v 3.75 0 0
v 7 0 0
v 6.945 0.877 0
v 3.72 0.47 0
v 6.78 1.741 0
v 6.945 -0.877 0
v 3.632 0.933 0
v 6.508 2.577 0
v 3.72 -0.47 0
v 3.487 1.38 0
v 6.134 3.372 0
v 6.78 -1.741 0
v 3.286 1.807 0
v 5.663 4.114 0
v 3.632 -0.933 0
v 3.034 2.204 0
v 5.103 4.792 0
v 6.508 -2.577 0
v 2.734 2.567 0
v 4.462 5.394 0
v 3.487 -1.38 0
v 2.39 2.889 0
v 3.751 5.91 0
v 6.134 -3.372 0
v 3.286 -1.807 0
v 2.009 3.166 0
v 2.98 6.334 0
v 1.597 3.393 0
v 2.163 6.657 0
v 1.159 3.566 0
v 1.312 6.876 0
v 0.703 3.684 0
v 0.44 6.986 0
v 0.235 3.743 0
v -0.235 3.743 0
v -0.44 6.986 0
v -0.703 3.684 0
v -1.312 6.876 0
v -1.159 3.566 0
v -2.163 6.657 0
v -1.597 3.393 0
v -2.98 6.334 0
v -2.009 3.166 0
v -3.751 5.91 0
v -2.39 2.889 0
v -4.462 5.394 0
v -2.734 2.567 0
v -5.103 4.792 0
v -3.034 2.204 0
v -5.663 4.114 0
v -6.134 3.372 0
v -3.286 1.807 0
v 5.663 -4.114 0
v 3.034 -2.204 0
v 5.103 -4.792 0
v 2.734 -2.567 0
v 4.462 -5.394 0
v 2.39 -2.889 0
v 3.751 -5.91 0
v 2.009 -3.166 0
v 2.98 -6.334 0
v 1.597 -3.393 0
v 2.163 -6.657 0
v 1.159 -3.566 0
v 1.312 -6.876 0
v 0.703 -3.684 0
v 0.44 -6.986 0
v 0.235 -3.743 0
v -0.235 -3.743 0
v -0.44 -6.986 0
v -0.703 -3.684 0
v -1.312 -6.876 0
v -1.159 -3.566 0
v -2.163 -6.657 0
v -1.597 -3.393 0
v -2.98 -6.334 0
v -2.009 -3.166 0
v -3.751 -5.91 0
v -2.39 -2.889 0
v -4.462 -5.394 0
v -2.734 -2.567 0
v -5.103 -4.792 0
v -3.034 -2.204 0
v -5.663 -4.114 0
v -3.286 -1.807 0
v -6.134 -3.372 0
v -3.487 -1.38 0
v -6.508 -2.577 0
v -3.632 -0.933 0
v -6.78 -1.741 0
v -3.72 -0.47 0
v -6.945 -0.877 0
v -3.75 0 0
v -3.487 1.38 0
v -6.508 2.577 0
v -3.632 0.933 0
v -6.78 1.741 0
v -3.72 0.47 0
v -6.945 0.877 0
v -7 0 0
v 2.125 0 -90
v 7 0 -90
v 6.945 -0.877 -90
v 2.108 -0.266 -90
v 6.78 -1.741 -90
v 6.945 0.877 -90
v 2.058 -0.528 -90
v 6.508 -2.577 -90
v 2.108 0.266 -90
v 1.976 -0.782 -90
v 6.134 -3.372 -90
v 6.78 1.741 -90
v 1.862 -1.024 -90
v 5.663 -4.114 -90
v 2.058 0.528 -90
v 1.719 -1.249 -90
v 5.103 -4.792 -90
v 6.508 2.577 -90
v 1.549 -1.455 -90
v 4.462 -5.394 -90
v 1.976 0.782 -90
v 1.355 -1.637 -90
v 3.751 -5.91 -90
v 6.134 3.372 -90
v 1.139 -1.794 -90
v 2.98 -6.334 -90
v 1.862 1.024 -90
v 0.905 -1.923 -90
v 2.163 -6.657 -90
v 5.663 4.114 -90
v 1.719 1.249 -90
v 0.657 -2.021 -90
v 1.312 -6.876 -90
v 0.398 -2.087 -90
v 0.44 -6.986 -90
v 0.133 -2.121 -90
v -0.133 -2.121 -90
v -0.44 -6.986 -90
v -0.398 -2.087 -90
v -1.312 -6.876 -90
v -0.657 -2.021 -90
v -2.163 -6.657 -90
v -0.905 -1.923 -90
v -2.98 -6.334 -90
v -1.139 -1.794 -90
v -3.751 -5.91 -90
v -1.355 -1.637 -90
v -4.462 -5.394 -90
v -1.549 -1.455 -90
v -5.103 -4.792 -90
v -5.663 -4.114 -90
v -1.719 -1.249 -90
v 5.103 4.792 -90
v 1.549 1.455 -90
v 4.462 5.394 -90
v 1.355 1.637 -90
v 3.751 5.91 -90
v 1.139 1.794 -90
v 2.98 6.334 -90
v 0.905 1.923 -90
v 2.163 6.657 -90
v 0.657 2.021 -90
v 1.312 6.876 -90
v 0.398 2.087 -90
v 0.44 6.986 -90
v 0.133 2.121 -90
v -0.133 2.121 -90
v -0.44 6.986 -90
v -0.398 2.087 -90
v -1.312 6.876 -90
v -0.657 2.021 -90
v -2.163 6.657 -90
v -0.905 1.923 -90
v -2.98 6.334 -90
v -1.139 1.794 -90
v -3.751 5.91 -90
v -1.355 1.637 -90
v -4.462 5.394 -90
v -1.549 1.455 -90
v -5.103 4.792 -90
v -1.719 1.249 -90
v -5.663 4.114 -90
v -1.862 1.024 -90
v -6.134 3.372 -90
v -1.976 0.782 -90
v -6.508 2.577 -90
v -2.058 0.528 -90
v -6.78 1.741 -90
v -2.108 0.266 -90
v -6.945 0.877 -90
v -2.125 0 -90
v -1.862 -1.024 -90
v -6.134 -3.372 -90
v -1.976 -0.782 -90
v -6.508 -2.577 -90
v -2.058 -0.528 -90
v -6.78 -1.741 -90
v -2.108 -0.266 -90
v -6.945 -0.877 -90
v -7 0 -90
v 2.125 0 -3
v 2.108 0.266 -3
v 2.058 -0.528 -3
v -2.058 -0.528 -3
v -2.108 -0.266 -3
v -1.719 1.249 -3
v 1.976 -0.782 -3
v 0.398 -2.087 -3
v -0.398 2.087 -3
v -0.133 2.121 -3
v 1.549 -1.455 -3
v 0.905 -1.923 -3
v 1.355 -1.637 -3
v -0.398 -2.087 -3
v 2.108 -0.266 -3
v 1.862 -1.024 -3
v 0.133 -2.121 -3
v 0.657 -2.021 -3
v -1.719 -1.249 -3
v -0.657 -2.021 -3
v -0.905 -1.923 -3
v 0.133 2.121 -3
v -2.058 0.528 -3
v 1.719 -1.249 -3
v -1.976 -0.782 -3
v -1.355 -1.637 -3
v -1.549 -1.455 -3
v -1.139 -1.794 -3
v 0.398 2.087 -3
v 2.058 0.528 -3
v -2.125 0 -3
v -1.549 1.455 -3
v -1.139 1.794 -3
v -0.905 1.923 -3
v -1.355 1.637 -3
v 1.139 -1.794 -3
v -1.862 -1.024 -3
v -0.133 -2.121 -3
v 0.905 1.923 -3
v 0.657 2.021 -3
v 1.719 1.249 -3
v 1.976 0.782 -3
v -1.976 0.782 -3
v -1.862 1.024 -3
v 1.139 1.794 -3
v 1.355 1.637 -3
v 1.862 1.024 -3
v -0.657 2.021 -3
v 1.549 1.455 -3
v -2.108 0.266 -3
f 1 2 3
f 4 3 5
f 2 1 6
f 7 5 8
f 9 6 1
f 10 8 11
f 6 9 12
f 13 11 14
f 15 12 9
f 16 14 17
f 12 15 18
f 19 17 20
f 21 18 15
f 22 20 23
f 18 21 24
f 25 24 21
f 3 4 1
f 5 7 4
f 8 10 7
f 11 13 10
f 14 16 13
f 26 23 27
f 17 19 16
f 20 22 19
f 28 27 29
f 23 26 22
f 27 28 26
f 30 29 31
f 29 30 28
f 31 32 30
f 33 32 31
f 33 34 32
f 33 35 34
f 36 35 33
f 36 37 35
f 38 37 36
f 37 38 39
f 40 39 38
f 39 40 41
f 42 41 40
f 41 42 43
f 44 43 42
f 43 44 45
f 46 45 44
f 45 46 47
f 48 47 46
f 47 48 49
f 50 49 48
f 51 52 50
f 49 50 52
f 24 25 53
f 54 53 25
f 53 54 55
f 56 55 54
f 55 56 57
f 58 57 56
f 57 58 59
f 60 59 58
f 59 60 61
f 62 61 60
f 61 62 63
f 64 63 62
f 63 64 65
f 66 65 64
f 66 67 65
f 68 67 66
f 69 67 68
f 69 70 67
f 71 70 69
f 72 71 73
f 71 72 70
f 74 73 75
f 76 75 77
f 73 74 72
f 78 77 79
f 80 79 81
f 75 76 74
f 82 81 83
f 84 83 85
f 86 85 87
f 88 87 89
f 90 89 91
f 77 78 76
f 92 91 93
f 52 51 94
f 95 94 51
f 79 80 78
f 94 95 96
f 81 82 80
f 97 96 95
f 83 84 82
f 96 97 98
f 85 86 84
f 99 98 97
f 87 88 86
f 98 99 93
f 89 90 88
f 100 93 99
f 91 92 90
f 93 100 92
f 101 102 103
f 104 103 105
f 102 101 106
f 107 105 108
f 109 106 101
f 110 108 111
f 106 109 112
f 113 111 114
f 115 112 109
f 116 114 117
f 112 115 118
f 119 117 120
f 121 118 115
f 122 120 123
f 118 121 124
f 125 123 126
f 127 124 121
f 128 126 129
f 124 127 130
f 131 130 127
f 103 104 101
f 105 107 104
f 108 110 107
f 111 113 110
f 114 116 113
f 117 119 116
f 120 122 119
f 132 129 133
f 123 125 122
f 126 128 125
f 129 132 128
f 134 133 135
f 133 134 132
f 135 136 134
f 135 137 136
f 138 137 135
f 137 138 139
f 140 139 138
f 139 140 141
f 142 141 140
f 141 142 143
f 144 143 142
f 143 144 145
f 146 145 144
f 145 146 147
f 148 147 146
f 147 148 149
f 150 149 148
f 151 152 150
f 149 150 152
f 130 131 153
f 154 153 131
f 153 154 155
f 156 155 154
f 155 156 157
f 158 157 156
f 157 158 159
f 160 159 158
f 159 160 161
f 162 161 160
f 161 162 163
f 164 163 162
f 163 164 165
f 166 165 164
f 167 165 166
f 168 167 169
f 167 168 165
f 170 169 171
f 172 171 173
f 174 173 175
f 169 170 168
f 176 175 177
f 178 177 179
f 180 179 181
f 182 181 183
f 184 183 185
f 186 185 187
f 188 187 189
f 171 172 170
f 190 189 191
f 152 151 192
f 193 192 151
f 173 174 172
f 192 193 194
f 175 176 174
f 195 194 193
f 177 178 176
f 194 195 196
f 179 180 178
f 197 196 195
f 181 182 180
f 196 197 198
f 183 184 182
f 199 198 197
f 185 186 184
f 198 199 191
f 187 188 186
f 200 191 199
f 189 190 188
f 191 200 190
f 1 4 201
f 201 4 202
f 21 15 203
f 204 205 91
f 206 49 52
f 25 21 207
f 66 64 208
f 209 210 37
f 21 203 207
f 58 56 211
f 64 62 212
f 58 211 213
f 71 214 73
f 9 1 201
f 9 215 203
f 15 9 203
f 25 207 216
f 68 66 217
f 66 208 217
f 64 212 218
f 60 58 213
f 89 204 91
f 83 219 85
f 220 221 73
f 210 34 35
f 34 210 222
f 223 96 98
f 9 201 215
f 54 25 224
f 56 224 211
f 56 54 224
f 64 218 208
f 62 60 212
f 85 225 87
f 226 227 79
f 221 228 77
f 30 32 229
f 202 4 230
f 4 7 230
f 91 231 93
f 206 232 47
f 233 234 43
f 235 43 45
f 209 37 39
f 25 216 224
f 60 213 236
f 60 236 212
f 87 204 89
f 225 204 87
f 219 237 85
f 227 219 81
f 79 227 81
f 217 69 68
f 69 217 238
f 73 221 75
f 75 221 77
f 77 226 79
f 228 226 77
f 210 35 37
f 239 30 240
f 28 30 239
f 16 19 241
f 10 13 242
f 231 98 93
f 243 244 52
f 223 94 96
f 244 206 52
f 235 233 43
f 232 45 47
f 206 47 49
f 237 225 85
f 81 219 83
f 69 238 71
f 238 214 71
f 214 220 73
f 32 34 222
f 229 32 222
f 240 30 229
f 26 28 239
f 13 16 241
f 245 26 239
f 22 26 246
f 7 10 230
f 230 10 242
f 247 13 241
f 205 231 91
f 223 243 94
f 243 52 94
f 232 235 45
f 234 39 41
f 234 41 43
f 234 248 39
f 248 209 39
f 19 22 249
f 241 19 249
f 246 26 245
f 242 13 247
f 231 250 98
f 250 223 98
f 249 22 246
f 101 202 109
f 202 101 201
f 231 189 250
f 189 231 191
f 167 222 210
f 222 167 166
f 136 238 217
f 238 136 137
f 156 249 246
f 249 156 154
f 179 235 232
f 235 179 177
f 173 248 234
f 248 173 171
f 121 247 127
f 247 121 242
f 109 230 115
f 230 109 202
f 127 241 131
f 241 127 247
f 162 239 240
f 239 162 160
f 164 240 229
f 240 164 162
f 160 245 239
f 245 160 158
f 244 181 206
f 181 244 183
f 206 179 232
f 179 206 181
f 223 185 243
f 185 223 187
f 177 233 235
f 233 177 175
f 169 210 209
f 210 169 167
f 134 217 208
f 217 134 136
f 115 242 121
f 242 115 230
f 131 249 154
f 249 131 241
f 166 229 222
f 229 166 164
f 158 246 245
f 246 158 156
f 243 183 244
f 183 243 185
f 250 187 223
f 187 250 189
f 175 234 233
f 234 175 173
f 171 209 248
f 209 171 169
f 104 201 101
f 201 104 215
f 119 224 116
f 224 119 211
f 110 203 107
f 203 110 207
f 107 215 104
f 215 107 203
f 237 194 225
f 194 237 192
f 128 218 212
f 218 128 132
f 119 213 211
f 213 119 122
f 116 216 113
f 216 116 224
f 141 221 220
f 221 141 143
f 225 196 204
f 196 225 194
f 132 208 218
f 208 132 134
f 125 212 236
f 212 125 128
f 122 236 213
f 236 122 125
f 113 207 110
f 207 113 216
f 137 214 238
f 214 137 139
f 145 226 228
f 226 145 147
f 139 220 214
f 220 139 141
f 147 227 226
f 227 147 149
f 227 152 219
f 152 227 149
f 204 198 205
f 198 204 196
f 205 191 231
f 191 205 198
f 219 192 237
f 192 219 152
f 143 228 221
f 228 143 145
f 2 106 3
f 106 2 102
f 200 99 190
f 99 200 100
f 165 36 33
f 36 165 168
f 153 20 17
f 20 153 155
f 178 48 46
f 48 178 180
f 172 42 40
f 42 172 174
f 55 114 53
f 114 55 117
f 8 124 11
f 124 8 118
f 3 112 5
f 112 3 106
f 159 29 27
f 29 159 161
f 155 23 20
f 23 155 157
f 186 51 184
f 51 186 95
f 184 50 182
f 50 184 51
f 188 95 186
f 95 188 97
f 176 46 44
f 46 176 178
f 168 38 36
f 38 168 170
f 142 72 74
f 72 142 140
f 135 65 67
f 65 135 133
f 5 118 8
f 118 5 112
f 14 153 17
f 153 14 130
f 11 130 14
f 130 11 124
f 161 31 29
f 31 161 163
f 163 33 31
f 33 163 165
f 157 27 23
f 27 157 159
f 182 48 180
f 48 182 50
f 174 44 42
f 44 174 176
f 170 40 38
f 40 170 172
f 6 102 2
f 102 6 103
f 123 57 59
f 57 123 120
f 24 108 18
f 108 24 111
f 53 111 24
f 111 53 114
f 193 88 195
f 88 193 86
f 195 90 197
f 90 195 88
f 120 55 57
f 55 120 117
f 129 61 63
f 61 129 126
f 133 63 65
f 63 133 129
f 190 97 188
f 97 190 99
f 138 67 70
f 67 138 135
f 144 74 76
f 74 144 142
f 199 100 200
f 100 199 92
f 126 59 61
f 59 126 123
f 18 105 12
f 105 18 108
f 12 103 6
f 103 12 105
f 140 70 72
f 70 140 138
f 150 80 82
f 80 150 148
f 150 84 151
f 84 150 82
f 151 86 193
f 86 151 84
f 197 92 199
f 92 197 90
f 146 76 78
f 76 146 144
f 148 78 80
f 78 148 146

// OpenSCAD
$fn = 50;


difference() {
	union() {
		translate(v = [0, 0, -90.0000000000]) {
			cylinder(h = 90, r = 7.0000000000);
		}
		cylinder(h = 0, r = 16.0000000000);
	}
	union() {
		translate(v = [0, 0, 0]) {
			rotate(a = [0, 0, 0]) {
				difference() {
					union() {
						#translate(v = [0, 0, -90.0000000000]) {
							cylinder(h = 90, r = 2.0000000000);
						}
						#translate(v = [0, 0, -3]) {
							cylinder(h = 3, r = 7.0000000000, r1 = 2.1250000000, r2 = 3.7500000000);
						}
						#translate(v = [0, 0, -90.0000000000]) {
							cylinder(h = 90, r = 2.1250000000);
						}
						#translate(v = [0, 0, -90.0000000000]) {
							cylinder(h = 90, r = 2.0000000000);
						}
					}
					union();
				}
			}
		}
	}
}
